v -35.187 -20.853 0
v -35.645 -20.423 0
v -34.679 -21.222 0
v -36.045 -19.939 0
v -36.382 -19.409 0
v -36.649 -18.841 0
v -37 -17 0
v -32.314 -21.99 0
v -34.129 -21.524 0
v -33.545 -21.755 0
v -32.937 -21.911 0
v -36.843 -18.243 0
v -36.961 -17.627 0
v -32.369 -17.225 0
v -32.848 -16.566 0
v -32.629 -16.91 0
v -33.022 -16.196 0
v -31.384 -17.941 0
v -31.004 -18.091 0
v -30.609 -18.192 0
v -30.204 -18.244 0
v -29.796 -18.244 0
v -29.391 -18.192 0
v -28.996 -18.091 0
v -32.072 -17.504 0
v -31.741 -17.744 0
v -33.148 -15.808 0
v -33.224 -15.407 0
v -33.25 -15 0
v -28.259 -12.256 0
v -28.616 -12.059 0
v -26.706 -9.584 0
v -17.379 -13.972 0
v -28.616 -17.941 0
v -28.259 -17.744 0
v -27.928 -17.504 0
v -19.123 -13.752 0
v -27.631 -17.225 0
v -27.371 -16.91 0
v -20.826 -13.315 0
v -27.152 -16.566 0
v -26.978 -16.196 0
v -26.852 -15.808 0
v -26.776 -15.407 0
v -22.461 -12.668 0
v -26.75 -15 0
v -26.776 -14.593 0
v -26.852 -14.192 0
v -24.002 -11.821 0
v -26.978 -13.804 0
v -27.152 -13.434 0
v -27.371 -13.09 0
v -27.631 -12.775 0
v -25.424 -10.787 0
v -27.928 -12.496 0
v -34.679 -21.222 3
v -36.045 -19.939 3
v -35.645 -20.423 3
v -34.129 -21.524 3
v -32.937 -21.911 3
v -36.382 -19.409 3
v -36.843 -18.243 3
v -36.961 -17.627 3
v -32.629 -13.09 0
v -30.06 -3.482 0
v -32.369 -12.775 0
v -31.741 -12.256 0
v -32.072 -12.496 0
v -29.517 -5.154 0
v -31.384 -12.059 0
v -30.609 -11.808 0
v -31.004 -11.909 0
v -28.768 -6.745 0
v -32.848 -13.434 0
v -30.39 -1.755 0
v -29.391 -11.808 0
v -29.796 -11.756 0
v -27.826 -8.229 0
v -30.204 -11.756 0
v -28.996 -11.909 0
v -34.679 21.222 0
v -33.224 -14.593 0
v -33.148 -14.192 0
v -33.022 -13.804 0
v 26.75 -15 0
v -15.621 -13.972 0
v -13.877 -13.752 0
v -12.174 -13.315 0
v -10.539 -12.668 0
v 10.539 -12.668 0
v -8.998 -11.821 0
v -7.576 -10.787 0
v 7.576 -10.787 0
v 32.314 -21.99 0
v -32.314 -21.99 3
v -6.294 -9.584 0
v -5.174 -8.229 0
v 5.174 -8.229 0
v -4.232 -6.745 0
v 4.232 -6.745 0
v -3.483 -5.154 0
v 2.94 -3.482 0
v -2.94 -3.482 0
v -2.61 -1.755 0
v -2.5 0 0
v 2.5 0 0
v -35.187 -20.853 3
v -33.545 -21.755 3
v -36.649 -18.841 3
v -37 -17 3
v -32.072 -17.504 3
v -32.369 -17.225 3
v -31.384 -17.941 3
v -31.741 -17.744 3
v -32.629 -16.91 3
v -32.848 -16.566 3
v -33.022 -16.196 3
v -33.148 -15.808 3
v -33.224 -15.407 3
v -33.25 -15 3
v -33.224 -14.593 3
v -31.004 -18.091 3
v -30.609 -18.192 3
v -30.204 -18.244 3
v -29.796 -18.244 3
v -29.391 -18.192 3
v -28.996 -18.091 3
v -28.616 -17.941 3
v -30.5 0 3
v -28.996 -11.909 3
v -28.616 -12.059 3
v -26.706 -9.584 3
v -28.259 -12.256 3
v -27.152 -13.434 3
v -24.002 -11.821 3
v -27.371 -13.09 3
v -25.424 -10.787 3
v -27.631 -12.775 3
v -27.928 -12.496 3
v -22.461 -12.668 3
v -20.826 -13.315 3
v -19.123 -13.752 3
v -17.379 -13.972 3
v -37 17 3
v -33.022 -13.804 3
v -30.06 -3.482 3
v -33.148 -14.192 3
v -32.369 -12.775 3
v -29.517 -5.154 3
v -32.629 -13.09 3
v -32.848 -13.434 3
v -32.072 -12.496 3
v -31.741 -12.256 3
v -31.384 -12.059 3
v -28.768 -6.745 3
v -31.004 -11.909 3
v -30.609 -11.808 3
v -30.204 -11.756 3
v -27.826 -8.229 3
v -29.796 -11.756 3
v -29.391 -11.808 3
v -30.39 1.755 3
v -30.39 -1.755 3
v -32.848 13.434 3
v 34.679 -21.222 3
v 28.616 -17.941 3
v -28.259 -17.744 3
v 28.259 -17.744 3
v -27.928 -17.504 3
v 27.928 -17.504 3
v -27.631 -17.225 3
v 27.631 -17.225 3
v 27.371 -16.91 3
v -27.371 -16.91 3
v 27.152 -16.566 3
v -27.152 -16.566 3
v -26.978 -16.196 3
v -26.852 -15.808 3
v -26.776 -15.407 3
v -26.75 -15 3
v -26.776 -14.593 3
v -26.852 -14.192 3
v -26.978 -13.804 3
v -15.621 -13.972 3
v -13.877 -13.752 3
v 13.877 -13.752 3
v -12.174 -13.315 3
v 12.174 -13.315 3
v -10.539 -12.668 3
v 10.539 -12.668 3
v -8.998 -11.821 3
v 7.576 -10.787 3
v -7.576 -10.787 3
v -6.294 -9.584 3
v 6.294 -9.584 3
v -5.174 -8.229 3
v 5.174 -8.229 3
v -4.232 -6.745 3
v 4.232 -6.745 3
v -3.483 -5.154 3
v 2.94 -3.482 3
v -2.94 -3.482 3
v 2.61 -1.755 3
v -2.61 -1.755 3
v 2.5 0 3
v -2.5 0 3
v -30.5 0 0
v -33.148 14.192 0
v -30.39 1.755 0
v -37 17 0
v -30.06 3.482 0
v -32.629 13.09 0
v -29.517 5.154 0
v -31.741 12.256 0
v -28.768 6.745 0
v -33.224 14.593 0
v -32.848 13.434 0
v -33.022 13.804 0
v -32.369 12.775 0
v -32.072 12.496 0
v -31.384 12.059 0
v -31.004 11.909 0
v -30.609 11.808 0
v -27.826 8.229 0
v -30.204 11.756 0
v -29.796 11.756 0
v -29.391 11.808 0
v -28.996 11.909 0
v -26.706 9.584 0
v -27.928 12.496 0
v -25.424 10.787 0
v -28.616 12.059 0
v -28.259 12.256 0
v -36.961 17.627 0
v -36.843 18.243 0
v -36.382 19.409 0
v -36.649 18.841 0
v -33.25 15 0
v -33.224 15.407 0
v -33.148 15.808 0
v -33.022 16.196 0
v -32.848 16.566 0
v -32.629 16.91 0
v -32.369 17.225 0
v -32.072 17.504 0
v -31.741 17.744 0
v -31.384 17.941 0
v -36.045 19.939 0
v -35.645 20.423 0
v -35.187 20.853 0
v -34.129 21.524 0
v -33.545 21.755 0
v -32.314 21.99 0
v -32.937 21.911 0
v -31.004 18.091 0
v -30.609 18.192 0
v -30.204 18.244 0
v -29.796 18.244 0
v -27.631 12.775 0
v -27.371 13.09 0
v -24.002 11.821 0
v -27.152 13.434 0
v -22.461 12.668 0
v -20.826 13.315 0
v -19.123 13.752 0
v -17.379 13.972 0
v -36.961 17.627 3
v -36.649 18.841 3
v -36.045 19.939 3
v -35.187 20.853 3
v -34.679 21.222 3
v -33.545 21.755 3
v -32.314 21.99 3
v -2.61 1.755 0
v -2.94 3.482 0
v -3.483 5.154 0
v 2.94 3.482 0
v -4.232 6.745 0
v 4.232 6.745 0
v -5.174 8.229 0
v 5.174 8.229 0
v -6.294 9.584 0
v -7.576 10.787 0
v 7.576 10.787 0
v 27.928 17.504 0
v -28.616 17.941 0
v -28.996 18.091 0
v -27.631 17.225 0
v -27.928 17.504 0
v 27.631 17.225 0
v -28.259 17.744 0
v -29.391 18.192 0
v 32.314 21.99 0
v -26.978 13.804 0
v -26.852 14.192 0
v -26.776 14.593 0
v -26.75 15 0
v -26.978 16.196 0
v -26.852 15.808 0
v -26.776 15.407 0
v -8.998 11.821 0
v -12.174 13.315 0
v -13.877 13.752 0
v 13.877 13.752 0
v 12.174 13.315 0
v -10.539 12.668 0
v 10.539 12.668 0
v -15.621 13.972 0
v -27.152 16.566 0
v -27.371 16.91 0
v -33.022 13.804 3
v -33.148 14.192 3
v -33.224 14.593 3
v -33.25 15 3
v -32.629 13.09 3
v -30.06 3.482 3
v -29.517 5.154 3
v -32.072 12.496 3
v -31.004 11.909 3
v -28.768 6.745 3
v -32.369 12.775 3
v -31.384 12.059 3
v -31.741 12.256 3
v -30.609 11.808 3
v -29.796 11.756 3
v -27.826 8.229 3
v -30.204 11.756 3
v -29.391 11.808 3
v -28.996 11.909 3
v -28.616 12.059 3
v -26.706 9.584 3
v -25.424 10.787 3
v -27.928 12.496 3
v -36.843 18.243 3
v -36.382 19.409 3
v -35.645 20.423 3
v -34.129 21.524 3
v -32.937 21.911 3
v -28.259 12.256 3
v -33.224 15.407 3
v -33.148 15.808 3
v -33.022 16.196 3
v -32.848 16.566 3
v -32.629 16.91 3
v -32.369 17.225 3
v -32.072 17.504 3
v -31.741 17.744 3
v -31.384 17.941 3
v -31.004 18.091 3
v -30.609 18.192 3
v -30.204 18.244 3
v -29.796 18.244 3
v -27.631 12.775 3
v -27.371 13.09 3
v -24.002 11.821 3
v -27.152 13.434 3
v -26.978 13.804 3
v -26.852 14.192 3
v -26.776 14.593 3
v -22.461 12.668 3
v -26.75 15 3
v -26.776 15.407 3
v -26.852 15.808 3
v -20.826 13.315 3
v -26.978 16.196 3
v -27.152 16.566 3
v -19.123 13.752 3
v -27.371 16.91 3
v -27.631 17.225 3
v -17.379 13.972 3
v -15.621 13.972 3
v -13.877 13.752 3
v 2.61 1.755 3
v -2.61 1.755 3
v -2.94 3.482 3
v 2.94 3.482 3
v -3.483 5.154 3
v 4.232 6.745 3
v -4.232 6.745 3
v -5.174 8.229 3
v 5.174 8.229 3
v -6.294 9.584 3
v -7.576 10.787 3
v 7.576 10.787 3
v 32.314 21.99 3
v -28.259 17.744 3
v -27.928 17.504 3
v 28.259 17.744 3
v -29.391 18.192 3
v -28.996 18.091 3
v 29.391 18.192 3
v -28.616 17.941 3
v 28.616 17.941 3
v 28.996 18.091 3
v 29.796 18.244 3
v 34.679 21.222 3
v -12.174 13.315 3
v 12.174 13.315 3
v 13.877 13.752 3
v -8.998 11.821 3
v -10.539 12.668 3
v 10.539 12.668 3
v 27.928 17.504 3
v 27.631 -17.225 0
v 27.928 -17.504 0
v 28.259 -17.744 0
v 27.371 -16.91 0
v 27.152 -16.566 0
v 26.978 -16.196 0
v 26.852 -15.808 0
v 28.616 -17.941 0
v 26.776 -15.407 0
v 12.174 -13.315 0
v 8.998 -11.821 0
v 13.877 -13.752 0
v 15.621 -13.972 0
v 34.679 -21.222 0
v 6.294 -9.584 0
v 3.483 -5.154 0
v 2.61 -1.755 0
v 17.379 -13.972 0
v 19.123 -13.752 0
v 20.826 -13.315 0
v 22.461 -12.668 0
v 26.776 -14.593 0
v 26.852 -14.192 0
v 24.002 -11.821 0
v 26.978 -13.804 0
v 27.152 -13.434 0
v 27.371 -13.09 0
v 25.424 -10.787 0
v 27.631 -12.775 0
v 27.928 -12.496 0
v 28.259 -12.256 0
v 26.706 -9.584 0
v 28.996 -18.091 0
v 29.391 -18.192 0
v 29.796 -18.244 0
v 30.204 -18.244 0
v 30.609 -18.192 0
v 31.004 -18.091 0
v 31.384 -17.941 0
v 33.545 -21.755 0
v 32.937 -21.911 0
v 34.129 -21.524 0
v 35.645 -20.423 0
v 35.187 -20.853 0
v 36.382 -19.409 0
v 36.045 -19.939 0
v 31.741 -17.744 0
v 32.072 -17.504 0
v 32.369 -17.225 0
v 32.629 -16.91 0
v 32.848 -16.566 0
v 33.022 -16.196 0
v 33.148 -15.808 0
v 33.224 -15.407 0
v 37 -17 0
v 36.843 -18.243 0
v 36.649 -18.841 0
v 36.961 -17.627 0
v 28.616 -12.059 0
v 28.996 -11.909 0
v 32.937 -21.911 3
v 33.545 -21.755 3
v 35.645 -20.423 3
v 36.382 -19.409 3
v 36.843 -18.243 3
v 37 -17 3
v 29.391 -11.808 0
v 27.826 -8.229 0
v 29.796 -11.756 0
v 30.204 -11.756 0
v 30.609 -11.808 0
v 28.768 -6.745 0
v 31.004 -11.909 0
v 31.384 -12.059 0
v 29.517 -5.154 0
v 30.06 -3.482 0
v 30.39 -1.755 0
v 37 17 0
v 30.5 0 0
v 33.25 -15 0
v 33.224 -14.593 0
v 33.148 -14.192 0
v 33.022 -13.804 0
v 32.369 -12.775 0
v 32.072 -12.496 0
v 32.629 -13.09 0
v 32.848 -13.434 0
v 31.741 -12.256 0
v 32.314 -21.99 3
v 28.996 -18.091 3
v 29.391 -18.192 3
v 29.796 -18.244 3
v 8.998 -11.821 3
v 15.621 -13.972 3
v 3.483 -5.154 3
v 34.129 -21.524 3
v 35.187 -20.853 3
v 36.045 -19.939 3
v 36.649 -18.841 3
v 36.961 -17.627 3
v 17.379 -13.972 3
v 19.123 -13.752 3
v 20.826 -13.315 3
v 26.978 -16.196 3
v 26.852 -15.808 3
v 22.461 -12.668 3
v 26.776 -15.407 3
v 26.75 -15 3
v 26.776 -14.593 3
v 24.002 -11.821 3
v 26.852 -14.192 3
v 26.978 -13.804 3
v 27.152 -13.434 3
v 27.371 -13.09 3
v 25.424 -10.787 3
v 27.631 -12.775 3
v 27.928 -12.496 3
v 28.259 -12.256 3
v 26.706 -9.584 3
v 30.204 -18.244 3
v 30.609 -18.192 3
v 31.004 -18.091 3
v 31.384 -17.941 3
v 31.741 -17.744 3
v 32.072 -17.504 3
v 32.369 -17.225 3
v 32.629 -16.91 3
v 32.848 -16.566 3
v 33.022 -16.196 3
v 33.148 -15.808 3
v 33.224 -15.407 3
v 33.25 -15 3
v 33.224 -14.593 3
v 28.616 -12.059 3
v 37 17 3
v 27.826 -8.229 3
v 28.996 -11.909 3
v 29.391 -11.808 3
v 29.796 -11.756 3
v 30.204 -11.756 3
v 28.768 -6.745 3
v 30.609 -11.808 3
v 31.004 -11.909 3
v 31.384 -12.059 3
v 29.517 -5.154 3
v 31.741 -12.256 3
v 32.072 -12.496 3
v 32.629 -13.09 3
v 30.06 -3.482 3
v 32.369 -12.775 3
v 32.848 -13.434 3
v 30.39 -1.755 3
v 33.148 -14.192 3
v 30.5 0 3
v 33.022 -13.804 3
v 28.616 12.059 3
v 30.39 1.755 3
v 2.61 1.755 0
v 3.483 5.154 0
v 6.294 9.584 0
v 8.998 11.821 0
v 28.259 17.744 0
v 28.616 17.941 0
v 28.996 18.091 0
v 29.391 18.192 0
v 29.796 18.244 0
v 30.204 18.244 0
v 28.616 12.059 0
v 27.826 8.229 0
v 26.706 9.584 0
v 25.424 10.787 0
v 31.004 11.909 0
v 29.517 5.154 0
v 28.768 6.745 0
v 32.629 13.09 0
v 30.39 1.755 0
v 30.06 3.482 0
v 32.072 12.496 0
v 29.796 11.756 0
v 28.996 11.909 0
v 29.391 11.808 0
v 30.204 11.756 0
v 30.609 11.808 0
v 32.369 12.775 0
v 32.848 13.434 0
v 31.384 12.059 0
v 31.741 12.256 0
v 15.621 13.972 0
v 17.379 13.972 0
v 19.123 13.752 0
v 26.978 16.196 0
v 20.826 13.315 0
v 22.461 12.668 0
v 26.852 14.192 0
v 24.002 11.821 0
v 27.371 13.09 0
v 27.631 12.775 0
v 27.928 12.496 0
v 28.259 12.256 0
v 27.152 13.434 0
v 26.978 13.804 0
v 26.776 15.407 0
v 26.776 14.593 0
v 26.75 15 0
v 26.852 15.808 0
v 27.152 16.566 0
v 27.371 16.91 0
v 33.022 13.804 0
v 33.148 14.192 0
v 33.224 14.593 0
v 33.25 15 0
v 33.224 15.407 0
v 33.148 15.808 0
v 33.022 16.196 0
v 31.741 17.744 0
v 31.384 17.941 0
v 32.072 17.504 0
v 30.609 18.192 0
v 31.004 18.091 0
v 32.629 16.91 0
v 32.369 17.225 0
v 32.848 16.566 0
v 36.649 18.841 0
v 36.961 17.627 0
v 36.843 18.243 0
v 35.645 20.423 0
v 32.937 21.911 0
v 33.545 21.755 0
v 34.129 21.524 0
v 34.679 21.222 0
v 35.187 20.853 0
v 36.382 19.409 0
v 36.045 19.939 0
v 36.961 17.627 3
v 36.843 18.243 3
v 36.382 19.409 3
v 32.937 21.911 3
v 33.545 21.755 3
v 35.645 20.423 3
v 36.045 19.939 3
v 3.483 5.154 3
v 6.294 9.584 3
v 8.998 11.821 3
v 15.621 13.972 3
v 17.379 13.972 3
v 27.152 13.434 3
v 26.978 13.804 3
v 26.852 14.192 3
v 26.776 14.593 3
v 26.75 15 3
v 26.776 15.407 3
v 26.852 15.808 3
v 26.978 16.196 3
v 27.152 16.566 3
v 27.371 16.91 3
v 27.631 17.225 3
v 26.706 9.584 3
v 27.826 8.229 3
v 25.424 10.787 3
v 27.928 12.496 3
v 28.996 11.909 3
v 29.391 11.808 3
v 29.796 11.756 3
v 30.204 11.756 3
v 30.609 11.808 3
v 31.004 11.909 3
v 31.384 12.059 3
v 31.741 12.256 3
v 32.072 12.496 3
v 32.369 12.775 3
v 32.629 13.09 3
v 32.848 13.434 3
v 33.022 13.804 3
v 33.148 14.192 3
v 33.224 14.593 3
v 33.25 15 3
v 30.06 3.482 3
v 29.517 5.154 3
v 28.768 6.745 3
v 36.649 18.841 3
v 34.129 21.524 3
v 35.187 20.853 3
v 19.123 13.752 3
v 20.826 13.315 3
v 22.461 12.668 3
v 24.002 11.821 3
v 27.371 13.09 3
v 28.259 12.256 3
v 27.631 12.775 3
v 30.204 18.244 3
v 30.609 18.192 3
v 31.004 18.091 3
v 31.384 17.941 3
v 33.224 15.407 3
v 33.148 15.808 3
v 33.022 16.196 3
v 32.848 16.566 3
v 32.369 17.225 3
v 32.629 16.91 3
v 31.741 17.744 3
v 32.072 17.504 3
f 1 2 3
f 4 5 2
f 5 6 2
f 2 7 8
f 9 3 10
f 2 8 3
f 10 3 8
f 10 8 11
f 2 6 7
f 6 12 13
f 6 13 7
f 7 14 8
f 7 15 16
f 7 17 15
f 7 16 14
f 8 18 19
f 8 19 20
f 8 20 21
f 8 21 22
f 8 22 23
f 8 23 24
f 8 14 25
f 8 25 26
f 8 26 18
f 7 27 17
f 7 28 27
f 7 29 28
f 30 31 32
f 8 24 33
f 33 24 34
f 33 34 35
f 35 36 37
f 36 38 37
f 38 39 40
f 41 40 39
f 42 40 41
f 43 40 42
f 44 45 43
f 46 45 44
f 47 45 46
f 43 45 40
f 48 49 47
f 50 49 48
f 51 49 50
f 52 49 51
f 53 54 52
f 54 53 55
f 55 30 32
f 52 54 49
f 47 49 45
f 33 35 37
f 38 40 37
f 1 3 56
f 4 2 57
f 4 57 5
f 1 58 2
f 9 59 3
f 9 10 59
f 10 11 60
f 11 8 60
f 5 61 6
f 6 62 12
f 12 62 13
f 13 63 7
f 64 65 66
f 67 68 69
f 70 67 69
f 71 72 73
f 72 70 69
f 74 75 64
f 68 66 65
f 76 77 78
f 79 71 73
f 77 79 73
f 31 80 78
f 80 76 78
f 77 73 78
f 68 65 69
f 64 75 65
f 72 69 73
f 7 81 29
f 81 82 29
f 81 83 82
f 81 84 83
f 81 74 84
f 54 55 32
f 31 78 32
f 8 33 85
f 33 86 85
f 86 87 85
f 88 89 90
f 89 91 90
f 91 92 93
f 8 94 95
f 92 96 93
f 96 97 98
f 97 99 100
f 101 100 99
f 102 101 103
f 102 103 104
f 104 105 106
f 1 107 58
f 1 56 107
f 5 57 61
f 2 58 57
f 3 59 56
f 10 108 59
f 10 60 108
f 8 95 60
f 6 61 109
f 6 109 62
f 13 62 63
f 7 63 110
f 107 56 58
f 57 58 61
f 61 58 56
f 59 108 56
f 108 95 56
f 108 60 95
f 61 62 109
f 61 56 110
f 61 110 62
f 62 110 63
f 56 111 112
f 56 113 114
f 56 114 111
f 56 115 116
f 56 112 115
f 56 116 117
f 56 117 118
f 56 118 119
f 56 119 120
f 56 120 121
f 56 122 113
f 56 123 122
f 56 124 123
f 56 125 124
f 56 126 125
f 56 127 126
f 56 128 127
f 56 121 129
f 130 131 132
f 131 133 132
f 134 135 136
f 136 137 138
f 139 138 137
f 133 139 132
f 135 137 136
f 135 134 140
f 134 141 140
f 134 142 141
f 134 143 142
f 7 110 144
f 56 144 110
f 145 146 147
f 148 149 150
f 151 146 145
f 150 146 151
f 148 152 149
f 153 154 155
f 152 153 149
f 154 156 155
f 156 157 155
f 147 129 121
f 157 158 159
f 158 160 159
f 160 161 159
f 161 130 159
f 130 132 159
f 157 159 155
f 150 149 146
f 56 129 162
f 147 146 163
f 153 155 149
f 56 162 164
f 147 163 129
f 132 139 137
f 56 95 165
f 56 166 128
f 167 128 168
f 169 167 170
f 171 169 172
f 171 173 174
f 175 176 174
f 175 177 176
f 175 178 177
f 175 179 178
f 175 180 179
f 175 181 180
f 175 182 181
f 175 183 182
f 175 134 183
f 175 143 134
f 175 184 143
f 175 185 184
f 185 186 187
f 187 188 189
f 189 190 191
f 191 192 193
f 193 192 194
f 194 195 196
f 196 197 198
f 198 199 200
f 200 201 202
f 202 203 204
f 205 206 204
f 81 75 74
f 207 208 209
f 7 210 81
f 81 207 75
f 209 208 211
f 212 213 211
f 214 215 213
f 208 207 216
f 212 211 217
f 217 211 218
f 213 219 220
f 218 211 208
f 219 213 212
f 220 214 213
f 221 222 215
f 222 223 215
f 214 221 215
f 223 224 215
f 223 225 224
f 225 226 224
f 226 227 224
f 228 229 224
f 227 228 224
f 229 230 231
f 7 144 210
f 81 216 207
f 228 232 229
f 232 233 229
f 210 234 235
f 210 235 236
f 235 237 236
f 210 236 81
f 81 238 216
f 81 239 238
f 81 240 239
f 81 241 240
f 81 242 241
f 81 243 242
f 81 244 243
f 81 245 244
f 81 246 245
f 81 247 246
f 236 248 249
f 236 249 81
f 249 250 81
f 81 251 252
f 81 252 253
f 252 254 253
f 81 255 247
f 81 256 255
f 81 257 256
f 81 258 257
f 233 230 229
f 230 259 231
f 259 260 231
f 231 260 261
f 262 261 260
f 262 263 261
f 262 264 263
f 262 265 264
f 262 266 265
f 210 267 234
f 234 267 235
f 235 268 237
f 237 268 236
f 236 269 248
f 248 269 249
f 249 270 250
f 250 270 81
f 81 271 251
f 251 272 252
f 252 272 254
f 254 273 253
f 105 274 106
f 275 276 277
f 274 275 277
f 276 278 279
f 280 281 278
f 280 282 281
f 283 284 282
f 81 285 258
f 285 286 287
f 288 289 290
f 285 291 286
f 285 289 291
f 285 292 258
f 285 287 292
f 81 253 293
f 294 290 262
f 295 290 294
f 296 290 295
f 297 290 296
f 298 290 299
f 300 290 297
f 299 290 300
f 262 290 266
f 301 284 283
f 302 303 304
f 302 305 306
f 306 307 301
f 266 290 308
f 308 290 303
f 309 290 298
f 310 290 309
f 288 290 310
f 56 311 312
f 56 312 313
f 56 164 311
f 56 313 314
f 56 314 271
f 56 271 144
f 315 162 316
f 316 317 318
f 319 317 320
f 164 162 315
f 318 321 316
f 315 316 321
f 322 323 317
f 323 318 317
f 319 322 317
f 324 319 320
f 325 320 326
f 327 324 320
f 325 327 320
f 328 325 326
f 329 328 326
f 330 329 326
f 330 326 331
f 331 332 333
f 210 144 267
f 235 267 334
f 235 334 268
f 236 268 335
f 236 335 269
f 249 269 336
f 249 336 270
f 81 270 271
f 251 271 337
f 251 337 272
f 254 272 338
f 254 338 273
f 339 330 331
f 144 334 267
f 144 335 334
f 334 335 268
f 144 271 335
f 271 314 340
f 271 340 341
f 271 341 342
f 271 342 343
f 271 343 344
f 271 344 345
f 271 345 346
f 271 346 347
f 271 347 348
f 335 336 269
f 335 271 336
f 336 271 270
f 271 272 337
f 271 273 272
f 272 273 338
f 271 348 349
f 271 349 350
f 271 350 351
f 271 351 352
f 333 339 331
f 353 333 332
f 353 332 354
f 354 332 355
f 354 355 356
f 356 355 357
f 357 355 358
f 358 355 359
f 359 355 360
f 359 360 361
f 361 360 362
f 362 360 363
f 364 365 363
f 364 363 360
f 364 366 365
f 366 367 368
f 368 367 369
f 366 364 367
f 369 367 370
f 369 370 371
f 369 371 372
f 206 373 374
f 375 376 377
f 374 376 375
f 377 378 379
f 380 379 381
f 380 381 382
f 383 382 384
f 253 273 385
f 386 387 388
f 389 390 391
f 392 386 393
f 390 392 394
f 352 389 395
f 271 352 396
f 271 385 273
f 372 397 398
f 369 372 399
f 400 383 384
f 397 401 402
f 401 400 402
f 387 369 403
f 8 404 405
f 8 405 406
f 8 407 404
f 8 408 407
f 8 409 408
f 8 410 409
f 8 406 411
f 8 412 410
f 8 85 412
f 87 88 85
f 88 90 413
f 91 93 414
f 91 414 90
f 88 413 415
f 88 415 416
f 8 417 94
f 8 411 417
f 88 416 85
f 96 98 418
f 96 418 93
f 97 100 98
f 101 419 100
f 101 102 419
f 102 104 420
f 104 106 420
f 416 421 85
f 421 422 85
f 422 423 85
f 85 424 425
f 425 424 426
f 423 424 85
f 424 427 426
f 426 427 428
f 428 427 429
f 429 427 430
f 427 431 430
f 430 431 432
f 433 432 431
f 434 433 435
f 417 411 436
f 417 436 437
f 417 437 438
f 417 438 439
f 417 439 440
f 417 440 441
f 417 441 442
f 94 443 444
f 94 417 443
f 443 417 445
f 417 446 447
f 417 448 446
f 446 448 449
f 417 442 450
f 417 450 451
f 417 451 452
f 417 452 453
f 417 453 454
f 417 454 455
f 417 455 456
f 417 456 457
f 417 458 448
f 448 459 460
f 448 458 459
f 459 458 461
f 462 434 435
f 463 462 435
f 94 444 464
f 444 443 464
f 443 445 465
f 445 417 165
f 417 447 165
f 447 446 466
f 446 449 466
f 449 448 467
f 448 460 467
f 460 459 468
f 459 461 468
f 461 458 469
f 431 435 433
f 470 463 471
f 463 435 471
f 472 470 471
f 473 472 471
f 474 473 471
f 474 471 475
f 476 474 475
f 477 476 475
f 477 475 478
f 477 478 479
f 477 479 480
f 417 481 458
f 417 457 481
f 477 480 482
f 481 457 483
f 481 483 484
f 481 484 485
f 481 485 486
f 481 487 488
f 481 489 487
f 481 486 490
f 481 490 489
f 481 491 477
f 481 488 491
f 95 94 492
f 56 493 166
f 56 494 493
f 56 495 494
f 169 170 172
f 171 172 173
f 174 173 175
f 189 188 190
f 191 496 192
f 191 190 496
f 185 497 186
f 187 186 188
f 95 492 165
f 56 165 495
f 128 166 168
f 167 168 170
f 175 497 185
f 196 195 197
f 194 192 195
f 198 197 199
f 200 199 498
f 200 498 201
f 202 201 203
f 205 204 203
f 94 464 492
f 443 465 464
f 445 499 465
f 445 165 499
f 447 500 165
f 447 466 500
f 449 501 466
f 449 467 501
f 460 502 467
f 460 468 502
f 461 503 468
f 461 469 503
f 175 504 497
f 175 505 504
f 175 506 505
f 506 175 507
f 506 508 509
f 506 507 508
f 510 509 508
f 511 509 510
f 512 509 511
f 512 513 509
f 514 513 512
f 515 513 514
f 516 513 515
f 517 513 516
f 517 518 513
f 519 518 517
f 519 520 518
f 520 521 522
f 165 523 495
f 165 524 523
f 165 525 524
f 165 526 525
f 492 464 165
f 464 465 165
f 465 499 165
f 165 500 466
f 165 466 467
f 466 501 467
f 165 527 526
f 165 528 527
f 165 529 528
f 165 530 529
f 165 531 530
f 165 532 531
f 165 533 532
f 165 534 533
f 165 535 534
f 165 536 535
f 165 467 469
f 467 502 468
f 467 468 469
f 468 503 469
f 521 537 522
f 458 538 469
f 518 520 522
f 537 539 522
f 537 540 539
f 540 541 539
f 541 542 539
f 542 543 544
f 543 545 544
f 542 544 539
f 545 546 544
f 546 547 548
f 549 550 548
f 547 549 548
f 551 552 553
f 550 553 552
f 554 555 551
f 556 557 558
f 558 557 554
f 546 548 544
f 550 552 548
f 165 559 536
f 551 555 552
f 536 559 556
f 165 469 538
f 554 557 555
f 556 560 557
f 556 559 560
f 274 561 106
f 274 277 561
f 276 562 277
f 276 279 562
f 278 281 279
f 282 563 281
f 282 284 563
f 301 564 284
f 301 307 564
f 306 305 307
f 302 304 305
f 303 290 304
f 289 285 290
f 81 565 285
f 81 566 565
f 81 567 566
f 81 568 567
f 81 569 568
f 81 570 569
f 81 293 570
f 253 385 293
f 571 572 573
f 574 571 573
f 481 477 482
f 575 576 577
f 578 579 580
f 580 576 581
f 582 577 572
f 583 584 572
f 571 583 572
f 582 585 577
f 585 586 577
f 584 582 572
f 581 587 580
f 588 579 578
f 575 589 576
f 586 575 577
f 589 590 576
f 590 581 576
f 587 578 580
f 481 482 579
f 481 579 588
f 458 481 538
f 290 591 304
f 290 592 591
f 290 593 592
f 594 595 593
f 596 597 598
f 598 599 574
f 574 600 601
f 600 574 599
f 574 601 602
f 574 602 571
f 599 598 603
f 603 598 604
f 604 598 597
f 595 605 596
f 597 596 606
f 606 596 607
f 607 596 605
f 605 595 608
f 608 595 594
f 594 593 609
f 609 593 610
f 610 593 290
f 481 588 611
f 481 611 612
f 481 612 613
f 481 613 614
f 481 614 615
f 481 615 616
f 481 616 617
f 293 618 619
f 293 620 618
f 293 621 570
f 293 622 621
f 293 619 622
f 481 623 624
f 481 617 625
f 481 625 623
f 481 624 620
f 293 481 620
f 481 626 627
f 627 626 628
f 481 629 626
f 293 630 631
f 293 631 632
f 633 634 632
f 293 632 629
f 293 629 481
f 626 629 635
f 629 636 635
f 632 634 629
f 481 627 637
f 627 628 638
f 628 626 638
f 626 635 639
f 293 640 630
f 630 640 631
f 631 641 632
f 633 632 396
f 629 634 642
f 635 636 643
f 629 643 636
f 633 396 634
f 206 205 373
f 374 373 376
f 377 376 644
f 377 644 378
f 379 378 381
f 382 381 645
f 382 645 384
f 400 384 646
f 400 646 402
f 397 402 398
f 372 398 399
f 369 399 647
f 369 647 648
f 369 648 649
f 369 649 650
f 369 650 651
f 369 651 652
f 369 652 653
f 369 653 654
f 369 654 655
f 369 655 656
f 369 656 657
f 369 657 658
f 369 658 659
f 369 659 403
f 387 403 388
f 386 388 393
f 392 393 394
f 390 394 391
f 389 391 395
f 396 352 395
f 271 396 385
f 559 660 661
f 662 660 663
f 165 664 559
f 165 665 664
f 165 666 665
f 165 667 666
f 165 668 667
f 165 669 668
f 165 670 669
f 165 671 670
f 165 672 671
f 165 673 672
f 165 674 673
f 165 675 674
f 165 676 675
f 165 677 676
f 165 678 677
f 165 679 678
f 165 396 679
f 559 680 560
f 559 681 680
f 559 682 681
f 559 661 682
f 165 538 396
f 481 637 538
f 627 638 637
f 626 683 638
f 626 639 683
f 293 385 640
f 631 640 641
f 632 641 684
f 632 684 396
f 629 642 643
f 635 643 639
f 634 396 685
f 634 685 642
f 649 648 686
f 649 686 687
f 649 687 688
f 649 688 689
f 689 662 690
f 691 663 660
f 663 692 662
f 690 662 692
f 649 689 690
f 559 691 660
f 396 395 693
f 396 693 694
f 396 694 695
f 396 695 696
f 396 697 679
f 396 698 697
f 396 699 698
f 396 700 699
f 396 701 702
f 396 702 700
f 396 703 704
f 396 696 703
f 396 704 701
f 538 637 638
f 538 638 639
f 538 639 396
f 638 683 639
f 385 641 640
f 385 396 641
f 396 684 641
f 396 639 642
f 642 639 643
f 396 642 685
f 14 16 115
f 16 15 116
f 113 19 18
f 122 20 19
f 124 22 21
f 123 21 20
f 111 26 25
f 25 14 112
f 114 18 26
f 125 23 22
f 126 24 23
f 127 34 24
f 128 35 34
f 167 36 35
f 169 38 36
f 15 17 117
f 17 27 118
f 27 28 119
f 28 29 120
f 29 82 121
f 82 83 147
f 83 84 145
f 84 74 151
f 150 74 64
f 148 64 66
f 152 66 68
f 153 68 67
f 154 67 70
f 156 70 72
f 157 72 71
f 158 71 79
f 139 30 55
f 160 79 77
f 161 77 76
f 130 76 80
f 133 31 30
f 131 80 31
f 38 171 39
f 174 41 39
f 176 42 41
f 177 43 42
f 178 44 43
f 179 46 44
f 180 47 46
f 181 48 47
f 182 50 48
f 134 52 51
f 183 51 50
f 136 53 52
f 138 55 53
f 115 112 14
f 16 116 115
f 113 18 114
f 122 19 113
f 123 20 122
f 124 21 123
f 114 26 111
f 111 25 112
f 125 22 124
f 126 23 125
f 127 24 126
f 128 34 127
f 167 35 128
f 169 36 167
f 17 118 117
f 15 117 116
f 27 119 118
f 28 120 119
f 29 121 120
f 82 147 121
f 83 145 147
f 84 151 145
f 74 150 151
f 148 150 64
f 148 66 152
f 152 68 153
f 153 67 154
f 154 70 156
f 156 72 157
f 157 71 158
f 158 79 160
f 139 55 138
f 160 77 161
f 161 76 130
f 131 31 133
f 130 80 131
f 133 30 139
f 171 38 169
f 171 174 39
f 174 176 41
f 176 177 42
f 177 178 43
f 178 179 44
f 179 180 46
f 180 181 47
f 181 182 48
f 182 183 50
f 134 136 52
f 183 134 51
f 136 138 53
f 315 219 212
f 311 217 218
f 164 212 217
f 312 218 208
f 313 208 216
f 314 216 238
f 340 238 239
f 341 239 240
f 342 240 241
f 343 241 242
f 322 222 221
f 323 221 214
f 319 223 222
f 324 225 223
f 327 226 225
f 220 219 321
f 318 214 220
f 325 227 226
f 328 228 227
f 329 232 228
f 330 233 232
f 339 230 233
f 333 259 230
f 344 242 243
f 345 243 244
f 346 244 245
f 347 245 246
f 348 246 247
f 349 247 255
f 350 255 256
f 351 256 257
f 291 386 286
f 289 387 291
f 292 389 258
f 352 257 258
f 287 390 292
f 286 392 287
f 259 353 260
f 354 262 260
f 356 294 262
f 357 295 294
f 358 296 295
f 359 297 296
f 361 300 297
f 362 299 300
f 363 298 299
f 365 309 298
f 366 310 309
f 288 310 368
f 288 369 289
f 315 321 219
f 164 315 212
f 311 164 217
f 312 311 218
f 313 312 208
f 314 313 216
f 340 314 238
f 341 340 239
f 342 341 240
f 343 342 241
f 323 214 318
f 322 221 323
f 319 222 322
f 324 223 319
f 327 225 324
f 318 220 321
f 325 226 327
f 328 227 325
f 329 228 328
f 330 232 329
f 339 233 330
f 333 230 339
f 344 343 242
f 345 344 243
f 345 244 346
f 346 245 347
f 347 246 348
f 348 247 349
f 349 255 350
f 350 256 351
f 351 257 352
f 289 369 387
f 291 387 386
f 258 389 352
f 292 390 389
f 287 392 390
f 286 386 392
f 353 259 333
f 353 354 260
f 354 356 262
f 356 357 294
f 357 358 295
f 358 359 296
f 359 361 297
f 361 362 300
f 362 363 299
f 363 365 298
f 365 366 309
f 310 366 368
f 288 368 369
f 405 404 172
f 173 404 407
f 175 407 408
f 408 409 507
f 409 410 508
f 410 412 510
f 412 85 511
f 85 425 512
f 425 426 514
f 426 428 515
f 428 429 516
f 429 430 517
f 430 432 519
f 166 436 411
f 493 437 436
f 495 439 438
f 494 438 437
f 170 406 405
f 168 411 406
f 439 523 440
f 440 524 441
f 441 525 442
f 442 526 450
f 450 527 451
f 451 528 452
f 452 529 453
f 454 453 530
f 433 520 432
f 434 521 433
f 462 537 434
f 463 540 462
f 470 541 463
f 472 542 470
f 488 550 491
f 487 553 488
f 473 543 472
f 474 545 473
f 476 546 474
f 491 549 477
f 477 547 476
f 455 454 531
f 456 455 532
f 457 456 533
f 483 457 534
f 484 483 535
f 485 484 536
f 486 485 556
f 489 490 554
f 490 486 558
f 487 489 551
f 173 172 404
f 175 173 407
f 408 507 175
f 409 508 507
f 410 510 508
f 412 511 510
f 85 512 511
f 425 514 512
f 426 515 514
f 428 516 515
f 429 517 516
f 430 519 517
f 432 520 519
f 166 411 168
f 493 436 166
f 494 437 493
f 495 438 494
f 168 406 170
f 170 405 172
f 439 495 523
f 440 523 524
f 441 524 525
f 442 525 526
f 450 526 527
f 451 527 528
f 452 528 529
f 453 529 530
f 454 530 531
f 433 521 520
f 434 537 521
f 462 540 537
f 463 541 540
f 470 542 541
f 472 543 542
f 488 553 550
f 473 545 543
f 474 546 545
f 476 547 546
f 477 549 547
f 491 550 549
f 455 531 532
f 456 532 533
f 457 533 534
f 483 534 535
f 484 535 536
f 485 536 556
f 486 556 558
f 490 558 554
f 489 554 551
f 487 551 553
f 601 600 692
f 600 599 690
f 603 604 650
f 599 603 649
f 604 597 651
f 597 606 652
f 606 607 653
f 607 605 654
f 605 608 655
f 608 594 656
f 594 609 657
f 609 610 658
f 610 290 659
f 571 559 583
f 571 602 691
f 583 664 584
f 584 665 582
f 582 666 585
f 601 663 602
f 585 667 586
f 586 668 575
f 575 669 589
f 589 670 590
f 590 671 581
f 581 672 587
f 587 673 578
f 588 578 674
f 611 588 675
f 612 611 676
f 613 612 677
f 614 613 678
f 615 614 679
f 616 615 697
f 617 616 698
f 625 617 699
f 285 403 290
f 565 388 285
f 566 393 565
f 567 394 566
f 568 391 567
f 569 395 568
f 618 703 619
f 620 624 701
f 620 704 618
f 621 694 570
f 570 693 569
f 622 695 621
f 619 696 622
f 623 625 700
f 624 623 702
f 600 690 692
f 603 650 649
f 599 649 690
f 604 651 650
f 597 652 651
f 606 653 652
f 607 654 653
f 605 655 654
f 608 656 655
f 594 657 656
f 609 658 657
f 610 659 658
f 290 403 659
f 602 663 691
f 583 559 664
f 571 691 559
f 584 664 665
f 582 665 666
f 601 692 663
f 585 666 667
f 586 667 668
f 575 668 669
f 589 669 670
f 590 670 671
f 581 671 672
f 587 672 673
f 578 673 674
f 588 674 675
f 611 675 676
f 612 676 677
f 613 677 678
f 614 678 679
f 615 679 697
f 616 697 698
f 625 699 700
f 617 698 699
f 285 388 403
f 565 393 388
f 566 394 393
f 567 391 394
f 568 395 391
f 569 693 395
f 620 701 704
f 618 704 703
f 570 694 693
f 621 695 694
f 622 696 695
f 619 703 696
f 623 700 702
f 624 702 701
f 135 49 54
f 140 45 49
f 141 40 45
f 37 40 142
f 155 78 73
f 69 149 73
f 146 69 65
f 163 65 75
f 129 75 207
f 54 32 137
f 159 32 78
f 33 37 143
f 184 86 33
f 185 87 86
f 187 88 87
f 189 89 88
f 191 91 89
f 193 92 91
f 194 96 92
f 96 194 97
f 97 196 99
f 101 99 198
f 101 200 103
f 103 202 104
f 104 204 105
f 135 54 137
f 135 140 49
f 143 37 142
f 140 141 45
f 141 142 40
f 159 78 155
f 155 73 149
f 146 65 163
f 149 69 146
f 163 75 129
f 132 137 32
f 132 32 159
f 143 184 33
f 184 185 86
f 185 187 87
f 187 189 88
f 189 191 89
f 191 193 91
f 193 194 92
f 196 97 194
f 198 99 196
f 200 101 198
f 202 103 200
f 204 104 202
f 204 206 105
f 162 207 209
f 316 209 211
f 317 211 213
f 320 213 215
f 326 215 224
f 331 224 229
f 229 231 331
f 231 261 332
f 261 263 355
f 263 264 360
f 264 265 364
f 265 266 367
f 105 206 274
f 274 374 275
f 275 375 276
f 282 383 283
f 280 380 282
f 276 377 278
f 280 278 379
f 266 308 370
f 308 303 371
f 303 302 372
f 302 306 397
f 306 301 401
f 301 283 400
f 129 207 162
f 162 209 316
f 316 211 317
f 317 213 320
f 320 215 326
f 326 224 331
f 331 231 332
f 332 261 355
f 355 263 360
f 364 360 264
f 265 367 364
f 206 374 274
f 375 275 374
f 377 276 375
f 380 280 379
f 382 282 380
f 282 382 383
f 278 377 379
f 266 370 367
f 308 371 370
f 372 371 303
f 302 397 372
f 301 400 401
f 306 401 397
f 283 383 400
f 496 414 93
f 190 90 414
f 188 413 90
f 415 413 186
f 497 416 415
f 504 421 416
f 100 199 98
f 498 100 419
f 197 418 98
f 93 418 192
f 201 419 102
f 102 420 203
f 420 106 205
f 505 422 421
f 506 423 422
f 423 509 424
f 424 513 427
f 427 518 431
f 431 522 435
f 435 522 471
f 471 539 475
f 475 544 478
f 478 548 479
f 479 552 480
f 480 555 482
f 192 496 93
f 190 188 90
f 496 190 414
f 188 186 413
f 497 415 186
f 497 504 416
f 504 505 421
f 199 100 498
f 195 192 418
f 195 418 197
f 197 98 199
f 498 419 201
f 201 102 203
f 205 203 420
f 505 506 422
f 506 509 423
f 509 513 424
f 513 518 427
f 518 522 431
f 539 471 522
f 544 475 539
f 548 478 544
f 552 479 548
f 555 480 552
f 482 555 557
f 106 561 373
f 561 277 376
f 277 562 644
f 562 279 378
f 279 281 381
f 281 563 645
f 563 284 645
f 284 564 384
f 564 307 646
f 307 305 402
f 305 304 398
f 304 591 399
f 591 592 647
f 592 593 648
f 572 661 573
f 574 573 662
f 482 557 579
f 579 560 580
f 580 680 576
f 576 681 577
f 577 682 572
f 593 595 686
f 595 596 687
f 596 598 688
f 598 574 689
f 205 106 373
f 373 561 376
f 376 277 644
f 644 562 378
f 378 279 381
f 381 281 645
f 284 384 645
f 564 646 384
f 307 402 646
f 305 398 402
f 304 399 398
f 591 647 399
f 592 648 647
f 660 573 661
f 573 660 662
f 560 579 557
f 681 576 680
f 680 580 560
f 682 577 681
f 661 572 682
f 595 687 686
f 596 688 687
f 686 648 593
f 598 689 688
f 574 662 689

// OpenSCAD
$fn = 50;

difference() {
	union() {
		hull() {
			translate(v = [-32.0, 17.0, 0]) {
				cylinder(h = 3, r = 5);
			}
			translate(v = [32.0, 17.0, 0]) {
				cylinder(h = 3, r = 5);
			}
			translate(v = [-32.0, -17.0, 0]) {
				cylinder(h = 3, r = 5);
			}
			translate(v = [32.0, -17.0, 0]) {
				cylinder(h = 3, r = 5);
			}
		}
	}
	union() {
		translate(v = [-30.0, -15.0, -100.0]) {
			cylinder(h = 200, r = 3.25);
		}
		translate(v = [-30.0, 15.0, -100.0]) {
			cylinder(h = 200, r = 3.25);
		}
		translate(v = [30.0, -15.0, -100.0]) {
			cylinder(h = 200, r = 3.25);
		}
		translate(v = [30.0, 15.0, -100.0]) {
			cylinder(h = 200, r = 3.25);
		}
		translate(v = [-30.0, -15.0, -100.0]) {
			cylinder(h = 200, r = 1.8);
		}
		translate(v = [-30.0, 15.0, -100.0]) {
			cylinder(h = 200, r = 1.8);
		}
		translate(v = [30.0, -15.0, -100.0]) {
			cylinder(h = 200, r = 1.8);
		}
		translate(v = [30.0, 15.0, -100.0]) {
			cylinder(h = 200, r = 1.8);
		}
		translate(v = [-16.5, 0, 0.0]) {
			cylinder(h = 3, r = 14.0);
		}
		translate(v = [16.5, 0, 0.0]) {
			cylinder(h = 3, r = 14.0);
		}
	}
}
